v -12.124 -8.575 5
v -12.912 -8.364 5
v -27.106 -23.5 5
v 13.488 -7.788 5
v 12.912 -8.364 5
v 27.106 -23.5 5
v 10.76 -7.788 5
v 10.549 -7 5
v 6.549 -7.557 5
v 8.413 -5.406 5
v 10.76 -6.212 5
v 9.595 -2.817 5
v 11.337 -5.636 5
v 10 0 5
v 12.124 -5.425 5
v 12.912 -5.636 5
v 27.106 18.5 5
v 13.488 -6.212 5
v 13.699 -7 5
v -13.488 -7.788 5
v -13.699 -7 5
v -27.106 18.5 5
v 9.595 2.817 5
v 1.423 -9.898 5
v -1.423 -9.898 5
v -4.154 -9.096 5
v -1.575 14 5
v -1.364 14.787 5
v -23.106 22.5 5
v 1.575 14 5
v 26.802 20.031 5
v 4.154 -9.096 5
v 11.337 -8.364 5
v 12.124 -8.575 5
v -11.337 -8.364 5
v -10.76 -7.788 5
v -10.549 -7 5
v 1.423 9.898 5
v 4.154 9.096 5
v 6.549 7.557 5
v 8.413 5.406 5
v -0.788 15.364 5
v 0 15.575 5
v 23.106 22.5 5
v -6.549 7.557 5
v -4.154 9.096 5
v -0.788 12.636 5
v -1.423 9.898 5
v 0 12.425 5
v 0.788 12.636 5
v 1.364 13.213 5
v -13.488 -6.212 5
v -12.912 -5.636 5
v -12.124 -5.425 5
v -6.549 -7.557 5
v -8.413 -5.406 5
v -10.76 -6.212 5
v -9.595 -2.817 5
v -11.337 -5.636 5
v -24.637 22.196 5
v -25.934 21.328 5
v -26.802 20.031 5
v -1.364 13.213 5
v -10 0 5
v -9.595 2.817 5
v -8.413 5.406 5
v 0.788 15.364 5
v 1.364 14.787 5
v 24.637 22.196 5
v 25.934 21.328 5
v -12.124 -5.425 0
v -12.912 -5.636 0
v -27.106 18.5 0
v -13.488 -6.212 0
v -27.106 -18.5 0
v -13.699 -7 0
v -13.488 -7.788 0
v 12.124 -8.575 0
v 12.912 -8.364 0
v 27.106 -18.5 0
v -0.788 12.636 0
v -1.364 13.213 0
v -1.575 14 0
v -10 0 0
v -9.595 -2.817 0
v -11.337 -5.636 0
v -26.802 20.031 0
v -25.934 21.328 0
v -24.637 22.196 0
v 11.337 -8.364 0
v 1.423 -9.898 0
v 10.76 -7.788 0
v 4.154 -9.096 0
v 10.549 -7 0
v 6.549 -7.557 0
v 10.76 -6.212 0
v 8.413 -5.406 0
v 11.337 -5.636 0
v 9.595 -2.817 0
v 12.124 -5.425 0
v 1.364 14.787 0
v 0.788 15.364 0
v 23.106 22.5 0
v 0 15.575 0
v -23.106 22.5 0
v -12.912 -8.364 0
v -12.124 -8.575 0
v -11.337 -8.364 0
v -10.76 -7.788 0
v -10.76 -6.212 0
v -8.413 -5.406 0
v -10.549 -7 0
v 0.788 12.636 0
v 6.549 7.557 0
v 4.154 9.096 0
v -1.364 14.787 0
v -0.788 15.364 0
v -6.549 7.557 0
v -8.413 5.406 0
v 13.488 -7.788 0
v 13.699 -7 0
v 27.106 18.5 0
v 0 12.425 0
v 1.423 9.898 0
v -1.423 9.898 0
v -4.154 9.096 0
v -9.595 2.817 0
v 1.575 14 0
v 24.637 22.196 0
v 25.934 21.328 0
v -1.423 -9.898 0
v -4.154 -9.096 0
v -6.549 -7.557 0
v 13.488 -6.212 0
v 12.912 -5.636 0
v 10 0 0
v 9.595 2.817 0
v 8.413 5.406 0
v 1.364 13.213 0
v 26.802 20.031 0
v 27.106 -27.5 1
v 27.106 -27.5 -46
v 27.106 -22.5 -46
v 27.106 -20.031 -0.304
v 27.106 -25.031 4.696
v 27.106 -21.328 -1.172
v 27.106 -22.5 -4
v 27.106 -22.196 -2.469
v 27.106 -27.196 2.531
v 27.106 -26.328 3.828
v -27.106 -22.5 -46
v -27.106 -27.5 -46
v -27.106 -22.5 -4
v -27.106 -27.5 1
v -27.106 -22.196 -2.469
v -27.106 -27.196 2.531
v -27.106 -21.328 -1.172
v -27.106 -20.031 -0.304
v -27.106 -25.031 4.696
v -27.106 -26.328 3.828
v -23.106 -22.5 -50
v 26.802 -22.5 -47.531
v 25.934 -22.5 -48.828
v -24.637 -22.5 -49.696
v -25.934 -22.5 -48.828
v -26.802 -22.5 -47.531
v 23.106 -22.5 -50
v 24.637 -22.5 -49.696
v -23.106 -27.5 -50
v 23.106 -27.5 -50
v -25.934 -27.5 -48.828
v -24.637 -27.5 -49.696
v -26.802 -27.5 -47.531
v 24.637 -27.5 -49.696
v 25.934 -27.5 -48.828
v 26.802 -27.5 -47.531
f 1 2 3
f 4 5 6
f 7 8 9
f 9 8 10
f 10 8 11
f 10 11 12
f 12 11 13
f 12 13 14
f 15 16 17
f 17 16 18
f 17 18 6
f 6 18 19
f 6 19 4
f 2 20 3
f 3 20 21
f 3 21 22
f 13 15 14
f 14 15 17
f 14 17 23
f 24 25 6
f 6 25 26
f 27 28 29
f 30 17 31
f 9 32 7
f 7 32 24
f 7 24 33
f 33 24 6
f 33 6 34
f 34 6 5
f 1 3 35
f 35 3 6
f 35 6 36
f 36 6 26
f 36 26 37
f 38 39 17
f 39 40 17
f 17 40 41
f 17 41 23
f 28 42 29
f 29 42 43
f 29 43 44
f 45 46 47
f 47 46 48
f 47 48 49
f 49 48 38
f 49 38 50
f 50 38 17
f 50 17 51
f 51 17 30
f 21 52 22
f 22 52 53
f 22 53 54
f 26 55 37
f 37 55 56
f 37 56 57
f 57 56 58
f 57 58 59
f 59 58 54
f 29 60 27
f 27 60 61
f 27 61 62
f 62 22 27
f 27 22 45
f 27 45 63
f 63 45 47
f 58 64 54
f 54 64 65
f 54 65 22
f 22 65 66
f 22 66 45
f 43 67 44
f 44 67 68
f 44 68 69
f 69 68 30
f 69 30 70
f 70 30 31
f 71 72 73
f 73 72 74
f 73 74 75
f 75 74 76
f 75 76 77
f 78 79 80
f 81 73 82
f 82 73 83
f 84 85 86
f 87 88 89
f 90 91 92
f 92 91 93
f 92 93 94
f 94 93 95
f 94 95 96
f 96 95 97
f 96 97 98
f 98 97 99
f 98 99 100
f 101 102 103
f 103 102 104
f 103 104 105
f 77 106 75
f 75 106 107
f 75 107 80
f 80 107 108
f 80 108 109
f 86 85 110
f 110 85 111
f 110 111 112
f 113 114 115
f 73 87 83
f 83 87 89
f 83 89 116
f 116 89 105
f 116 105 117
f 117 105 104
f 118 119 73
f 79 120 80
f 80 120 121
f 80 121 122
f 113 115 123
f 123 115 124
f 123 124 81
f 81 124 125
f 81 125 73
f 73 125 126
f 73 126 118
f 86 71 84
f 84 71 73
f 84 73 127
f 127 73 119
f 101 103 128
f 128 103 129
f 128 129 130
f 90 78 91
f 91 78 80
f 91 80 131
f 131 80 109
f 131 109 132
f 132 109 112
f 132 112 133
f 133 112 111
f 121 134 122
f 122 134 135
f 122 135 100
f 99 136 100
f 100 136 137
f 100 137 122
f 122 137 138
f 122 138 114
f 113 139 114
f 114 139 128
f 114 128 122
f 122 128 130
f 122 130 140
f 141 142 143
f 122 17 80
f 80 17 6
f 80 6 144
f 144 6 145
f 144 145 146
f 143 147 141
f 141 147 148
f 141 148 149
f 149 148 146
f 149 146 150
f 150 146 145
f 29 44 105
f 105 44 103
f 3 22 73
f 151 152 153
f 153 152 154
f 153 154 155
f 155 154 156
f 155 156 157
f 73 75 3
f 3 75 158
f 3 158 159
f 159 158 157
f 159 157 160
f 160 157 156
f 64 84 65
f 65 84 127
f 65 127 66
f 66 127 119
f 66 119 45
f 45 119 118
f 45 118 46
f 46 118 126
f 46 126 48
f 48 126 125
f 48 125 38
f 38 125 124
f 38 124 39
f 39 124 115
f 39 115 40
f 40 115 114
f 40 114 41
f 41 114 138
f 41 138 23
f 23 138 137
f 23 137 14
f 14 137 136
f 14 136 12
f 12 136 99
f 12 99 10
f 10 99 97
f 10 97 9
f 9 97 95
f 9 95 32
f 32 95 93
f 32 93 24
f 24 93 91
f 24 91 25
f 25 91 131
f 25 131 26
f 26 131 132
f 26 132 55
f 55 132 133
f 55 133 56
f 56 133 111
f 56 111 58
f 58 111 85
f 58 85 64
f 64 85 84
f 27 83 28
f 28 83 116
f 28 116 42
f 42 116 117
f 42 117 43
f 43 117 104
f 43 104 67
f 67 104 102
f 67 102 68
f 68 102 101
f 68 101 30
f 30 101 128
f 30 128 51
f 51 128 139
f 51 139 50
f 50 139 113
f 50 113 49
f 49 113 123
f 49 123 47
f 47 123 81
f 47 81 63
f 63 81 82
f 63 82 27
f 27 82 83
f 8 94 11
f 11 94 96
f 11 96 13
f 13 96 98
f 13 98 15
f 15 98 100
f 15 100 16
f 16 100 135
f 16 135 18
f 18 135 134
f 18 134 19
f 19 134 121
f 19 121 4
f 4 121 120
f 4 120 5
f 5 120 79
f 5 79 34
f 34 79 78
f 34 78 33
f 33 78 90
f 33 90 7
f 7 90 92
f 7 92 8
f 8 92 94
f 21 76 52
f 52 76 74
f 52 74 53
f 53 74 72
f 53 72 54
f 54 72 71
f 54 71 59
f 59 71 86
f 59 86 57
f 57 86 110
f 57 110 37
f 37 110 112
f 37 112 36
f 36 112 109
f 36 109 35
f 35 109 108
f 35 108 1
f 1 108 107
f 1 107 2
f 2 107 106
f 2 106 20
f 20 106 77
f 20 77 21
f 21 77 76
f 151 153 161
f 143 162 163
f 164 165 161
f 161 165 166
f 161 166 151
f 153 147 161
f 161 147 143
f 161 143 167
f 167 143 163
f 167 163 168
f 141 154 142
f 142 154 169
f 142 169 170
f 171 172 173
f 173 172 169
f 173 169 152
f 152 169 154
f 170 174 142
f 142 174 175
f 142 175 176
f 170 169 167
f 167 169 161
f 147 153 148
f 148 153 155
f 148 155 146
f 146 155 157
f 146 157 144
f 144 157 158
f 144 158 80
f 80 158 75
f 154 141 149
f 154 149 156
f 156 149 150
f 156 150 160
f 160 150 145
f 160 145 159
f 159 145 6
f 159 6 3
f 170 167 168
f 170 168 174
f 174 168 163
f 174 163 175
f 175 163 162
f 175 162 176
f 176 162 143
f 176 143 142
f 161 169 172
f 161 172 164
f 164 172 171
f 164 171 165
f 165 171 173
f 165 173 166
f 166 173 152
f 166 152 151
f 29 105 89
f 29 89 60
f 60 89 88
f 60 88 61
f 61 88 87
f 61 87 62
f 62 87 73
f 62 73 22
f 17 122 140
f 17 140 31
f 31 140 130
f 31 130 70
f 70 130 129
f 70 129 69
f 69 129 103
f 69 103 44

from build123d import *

# Parameters (mm, degrees)
SKETCH1_W                = 54.212076584
SKETCH1_H                = 45
SKETCH1_R                = 10
SKETCH1_R_2              = 1.575
BOSS_EXTRUDE1_DEPTH      = 5
BOSS_EXTRUDE2_DEPTH      = 50
BOSS_EXTRUDE2_DEPTH_BACK = 5
SKETCH2_W                = 54.212076584
SKETCH2_H                = 5
FILLET3_R                = 4


with BuildPart() as part:
    # Sketch1 → Boss-Extrude1 (new body)
    with BuildSketch(Plane.XY):
        Rectangle(SKETCH1_W, SKETCH1_H)
        Circle(SKETCH1_R, mode=Mode.SUBTRACT)
        with Locations((0, 14)):
            Circle(SKETCH1_R_2, mode=Mode.SUBTRACT)
        with Locations((12.124355653, -7)):
            Circle(SKETCH1_R_2, mode=Mode.SUBTRACT)
        with Locations((-12.124355653, -7)):
            Circle(SKETCH1_R_2, mode=Mode.SUBTRACT)
    extrude(amount=BOSS_EXTRUDE1_DEPTH)

    # Sketch2 → Boss-Extrude2 (add, two sides: drawn at the far end of the back side and taken through both)
    with BuildSketch(Plane(origin=(0, 0, 0), x_dir=(-1, 0, 0), z_dir=(0, 0, -1)).offset(-BOSS_EXTRUDE2_DEPTH_BACK)):
        with Locations((0, -25)):
            Rectangle(SKETCH2_W, SKETCH2_H)
    extrude(amount=BOSS_EXTRUDE2_DEPTH + BOSS_EXTRUDE2_DEPTH_BACK)

    # Fillet3
    fillet3_edges = [part.edges().sort_by_distance(p)[0] for p in [
        (0, -27.5, 5),
        (27.106038292, -25, -50),
        (-27.106038292, -25, -50),
        (0, -22.5, 0),
        (-27.106038292, 22.5, 2.5),
        (27.106038292, 22.5, 2.5),
    ]]
    fillet(fillet3_edges, radius=FILLET3_R)


solid = part.part
